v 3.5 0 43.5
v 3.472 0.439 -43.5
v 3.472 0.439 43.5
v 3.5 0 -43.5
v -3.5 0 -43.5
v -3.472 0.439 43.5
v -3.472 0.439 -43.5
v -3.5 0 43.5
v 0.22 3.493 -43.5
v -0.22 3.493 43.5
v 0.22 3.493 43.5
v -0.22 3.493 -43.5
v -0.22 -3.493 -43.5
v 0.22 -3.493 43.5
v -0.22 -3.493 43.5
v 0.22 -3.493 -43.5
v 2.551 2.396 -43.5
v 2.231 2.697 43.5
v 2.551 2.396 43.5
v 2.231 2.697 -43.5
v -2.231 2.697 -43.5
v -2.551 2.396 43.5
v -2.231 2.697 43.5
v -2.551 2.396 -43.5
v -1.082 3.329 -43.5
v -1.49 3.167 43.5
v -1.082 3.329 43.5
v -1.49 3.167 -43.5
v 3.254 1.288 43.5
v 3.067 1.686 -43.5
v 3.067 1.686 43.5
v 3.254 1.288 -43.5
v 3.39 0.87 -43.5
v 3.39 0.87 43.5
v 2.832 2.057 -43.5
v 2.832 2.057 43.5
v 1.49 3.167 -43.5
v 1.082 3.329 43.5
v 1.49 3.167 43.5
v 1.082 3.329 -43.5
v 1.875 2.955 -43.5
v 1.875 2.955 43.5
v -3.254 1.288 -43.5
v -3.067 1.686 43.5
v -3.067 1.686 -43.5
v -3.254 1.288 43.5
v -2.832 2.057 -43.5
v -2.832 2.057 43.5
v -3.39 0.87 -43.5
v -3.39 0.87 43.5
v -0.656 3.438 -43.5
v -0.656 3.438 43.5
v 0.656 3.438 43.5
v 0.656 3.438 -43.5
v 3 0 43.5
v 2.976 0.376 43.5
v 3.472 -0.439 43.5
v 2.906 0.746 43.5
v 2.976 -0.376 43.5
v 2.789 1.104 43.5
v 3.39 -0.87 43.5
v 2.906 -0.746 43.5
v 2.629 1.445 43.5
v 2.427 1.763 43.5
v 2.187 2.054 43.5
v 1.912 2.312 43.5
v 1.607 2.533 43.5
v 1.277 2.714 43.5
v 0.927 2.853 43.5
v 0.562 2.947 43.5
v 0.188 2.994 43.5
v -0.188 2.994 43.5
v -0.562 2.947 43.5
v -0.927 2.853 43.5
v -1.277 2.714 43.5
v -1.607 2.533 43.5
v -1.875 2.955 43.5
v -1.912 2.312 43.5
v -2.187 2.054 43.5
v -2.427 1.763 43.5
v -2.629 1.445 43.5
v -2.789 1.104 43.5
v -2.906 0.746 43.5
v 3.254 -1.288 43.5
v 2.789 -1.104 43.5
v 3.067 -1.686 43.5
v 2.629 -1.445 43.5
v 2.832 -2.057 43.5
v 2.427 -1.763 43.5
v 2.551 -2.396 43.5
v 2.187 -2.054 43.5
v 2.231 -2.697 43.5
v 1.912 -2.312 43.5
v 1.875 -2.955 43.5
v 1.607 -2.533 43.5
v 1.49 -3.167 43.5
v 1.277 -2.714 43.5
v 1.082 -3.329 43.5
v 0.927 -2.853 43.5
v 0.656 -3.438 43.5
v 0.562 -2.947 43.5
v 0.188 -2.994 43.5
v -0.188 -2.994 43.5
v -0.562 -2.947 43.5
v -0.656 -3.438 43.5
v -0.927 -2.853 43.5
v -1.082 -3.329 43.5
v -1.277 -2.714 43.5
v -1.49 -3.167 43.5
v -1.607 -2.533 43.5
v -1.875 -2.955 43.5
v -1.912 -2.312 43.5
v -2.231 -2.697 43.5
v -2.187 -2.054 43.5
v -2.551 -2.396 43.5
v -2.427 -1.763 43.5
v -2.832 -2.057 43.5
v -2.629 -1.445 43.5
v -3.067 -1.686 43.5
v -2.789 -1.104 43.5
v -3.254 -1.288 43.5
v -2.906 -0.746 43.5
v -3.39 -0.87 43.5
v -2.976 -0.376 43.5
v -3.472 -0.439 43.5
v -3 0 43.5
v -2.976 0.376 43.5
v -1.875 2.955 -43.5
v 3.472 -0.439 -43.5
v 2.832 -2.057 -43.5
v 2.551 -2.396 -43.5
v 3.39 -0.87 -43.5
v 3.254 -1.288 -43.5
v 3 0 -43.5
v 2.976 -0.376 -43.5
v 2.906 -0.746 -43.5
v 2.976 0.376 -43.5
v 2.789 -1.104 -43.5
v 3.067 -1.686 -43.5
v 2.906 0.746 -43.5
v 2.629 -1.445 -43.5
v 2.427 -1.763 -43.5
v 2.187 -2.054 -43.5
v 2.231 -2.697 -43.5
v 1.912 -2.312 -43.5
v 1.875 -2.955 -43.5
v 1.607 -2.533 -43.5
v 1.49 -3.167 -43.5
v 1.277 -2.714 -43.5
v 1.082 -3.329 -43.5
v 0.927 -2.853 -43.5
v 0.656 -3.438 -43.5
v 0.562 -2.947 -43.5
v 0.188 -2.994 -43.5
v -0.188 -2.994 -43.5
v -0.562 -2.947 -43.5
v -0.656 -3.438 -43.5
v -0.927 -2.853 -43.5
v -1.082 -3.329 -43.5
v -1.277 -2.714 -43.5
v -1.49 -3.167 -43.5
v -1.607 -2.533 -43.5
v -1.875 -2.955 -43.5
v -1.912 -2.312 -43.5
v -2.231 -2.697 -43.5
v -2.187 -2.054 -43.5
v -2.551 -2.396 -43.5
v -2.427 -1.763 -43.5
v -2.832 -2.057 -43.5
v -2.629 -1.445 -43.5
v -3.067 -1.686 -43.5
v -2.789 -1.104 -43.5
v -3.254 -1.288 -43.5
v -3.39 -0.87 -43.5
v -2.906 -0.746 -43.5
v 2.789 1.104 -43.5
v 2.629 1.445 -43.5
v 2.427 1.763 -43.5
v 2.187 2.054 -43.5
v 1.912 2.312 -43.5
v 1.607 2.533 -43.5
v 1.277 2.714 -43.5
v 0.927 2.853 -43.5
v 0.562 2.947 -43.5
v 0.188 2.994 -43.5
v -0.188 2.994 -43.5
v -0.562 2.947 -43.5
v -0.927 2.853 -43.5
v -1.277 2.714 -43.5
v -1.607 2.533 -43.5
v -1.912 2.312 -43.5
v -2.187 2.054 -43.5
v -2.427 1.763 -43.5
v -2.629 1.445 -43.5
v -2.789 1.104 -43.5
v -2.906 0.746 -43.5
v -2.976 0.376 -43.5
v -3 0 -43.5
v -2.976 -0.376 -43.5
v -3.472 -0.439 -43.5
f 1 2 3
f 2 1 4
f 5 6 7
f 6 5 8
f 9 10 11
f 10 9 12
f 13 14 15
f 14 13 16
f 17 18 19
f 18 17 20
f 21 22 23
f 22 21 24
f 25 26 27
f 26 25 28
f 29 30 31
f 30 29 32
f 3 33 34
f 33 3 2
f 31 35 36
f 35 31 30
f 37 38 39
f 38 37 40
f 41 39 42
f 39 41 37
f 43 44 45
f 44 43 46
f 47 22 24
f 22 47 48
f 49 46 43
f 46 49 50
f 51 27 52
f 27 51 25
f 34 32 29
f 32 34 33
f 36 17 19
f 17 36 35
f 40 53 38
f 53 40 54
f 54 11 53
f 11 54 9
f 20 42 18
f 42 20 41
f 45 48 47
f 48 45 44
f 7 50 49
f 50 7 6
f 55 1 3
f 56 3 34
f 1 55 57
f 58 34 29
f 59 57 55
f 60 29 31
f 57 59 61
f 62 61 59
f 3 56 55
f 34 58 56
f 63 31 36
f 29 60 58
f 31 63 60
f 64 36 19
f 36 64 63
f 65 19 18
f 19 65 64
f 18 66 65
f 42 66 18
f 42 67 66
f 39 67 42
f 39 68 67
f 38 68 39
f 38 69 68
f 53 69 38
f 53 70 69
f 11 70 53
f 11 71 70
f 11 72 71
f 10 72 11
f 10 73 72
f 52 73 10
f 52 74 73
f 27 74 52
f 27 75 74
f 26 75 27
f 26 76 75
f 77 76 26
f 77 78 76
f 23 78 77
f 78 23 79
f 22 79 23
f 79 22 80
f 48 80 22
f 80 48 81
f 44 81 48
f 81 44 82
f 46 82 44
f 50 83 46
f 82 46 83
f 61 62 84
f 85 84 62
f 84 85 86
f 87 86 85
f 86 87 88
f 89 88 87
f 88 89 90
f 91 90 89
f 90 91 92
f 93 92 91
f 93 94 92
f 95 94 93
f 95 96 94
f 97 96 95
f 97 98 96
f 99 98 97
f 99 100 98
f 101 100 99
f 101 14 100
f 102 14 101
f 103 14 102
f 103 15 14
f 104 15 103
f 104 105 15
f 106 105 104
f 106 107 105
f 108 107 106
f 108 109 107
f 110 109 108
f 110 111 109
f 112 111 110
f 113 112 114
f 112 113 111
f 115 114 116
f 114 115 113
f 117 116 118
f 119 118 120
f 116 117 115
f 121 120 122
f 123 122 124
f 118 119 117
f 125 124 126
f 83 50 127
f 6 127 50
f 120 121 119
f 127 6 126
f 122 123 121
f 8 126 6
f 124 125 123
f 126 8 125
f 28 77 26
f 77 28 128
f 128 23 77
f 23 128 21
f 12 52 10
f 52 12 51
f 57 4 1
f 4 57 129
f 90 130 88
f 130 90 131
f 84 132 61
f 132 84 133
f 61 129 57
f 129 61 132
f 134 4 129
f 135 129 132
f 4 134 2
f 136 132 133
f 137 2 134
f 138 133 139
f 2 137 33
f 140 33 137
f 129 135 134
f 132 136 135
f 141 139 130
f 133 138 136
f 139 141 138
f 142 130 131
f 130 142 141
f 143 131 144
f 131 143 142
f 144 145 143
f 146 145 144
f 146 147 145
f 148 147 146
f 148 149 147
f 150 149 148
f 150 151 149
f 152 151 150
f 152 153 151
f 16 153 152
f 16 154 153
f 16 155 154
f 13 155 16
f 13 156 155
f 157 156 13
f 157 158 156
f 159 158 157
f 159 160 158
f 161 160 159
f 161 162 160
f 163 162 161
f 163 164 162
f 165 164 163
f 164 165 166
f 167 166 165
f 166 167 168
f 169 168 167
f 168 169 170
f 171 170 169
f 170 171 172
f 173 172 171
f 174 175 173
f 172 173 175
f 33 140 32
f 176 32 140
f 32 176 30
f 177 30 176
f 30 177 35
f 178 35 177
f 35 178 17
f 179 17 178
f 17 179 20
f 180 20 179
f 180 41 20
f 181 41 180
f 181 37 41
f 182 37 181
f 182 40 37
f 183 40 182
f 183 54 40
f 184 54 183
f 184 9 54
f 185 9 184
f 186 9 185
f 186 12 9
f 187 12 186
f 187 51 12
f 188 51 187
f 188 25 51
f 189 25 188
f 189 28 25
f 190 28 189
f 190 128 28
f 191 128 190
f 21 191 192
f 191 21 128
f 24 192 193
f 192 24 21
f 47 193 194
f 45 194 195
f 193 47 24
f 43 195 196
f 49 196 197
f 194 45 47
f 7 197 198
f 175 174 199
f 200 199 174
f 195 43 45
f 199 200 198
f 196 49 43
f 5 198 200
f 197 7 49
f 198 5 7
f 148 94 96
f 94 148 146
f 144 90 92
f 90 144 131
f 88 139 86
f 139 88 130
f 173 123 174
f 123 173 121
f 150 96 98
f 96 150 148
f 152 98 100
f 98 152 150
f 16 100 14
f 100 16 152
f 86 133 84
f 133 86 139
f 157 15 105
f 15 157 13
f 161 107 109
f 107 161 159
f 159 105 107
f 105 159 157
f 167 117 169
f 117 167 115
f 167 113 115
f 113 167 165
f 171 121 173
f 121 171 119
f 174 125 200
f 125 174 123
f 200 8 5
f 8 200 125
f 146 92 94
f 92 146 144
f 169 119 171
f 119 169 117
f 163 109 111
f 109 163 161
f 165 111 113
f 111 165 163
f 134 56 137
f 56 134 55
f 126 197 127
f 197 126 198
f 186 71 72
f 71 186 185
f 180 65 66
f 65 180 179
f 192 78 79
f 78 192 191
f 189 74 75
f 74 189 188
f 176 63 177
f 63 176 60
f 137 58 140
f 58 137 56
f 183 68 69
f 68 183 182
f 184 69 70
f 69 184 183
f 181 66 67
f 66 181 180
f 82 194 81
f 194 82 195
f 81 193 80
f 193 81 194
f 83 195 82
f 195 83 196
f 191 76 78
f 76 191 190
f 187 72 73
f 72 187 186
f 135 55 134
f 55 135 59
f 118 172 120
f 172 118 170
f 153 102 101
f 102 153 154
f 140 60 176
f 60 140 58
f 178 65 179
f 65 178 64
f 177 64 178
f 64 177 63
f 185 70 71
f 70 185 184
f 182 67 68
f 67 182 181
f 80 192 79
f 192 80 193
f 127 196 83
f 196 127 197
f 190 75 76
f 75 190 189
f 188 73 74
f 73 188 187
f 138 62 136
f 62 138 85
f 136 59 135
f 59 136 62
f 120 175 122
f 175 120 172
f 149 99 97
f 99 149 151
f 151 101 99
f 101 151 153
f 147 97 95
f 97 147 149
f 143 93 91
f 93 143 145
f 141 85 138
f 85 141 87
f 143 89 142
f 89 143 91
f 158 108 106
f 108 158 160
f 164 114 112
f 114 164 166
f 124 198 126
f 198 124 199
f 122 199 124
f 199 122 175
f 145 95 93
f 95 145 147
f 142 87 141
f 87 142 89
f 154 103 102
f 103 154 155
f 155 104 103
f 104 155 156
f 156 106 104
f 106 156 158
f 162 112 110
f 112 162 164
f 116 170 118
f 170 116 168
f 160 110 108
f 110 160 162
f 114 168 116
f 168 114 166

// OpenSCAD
$fn = 50;


difference() {
	union() {
		translate(v = [0, 0, -43.5000000000]) {
			cylinder(h = 87, r = 3.5000000000);
		}
	}
	union() {
		translate(v = [0, 0, -100.0000000000]) {
			cylinder(h = 200, r = 3);
		}
	}
}
